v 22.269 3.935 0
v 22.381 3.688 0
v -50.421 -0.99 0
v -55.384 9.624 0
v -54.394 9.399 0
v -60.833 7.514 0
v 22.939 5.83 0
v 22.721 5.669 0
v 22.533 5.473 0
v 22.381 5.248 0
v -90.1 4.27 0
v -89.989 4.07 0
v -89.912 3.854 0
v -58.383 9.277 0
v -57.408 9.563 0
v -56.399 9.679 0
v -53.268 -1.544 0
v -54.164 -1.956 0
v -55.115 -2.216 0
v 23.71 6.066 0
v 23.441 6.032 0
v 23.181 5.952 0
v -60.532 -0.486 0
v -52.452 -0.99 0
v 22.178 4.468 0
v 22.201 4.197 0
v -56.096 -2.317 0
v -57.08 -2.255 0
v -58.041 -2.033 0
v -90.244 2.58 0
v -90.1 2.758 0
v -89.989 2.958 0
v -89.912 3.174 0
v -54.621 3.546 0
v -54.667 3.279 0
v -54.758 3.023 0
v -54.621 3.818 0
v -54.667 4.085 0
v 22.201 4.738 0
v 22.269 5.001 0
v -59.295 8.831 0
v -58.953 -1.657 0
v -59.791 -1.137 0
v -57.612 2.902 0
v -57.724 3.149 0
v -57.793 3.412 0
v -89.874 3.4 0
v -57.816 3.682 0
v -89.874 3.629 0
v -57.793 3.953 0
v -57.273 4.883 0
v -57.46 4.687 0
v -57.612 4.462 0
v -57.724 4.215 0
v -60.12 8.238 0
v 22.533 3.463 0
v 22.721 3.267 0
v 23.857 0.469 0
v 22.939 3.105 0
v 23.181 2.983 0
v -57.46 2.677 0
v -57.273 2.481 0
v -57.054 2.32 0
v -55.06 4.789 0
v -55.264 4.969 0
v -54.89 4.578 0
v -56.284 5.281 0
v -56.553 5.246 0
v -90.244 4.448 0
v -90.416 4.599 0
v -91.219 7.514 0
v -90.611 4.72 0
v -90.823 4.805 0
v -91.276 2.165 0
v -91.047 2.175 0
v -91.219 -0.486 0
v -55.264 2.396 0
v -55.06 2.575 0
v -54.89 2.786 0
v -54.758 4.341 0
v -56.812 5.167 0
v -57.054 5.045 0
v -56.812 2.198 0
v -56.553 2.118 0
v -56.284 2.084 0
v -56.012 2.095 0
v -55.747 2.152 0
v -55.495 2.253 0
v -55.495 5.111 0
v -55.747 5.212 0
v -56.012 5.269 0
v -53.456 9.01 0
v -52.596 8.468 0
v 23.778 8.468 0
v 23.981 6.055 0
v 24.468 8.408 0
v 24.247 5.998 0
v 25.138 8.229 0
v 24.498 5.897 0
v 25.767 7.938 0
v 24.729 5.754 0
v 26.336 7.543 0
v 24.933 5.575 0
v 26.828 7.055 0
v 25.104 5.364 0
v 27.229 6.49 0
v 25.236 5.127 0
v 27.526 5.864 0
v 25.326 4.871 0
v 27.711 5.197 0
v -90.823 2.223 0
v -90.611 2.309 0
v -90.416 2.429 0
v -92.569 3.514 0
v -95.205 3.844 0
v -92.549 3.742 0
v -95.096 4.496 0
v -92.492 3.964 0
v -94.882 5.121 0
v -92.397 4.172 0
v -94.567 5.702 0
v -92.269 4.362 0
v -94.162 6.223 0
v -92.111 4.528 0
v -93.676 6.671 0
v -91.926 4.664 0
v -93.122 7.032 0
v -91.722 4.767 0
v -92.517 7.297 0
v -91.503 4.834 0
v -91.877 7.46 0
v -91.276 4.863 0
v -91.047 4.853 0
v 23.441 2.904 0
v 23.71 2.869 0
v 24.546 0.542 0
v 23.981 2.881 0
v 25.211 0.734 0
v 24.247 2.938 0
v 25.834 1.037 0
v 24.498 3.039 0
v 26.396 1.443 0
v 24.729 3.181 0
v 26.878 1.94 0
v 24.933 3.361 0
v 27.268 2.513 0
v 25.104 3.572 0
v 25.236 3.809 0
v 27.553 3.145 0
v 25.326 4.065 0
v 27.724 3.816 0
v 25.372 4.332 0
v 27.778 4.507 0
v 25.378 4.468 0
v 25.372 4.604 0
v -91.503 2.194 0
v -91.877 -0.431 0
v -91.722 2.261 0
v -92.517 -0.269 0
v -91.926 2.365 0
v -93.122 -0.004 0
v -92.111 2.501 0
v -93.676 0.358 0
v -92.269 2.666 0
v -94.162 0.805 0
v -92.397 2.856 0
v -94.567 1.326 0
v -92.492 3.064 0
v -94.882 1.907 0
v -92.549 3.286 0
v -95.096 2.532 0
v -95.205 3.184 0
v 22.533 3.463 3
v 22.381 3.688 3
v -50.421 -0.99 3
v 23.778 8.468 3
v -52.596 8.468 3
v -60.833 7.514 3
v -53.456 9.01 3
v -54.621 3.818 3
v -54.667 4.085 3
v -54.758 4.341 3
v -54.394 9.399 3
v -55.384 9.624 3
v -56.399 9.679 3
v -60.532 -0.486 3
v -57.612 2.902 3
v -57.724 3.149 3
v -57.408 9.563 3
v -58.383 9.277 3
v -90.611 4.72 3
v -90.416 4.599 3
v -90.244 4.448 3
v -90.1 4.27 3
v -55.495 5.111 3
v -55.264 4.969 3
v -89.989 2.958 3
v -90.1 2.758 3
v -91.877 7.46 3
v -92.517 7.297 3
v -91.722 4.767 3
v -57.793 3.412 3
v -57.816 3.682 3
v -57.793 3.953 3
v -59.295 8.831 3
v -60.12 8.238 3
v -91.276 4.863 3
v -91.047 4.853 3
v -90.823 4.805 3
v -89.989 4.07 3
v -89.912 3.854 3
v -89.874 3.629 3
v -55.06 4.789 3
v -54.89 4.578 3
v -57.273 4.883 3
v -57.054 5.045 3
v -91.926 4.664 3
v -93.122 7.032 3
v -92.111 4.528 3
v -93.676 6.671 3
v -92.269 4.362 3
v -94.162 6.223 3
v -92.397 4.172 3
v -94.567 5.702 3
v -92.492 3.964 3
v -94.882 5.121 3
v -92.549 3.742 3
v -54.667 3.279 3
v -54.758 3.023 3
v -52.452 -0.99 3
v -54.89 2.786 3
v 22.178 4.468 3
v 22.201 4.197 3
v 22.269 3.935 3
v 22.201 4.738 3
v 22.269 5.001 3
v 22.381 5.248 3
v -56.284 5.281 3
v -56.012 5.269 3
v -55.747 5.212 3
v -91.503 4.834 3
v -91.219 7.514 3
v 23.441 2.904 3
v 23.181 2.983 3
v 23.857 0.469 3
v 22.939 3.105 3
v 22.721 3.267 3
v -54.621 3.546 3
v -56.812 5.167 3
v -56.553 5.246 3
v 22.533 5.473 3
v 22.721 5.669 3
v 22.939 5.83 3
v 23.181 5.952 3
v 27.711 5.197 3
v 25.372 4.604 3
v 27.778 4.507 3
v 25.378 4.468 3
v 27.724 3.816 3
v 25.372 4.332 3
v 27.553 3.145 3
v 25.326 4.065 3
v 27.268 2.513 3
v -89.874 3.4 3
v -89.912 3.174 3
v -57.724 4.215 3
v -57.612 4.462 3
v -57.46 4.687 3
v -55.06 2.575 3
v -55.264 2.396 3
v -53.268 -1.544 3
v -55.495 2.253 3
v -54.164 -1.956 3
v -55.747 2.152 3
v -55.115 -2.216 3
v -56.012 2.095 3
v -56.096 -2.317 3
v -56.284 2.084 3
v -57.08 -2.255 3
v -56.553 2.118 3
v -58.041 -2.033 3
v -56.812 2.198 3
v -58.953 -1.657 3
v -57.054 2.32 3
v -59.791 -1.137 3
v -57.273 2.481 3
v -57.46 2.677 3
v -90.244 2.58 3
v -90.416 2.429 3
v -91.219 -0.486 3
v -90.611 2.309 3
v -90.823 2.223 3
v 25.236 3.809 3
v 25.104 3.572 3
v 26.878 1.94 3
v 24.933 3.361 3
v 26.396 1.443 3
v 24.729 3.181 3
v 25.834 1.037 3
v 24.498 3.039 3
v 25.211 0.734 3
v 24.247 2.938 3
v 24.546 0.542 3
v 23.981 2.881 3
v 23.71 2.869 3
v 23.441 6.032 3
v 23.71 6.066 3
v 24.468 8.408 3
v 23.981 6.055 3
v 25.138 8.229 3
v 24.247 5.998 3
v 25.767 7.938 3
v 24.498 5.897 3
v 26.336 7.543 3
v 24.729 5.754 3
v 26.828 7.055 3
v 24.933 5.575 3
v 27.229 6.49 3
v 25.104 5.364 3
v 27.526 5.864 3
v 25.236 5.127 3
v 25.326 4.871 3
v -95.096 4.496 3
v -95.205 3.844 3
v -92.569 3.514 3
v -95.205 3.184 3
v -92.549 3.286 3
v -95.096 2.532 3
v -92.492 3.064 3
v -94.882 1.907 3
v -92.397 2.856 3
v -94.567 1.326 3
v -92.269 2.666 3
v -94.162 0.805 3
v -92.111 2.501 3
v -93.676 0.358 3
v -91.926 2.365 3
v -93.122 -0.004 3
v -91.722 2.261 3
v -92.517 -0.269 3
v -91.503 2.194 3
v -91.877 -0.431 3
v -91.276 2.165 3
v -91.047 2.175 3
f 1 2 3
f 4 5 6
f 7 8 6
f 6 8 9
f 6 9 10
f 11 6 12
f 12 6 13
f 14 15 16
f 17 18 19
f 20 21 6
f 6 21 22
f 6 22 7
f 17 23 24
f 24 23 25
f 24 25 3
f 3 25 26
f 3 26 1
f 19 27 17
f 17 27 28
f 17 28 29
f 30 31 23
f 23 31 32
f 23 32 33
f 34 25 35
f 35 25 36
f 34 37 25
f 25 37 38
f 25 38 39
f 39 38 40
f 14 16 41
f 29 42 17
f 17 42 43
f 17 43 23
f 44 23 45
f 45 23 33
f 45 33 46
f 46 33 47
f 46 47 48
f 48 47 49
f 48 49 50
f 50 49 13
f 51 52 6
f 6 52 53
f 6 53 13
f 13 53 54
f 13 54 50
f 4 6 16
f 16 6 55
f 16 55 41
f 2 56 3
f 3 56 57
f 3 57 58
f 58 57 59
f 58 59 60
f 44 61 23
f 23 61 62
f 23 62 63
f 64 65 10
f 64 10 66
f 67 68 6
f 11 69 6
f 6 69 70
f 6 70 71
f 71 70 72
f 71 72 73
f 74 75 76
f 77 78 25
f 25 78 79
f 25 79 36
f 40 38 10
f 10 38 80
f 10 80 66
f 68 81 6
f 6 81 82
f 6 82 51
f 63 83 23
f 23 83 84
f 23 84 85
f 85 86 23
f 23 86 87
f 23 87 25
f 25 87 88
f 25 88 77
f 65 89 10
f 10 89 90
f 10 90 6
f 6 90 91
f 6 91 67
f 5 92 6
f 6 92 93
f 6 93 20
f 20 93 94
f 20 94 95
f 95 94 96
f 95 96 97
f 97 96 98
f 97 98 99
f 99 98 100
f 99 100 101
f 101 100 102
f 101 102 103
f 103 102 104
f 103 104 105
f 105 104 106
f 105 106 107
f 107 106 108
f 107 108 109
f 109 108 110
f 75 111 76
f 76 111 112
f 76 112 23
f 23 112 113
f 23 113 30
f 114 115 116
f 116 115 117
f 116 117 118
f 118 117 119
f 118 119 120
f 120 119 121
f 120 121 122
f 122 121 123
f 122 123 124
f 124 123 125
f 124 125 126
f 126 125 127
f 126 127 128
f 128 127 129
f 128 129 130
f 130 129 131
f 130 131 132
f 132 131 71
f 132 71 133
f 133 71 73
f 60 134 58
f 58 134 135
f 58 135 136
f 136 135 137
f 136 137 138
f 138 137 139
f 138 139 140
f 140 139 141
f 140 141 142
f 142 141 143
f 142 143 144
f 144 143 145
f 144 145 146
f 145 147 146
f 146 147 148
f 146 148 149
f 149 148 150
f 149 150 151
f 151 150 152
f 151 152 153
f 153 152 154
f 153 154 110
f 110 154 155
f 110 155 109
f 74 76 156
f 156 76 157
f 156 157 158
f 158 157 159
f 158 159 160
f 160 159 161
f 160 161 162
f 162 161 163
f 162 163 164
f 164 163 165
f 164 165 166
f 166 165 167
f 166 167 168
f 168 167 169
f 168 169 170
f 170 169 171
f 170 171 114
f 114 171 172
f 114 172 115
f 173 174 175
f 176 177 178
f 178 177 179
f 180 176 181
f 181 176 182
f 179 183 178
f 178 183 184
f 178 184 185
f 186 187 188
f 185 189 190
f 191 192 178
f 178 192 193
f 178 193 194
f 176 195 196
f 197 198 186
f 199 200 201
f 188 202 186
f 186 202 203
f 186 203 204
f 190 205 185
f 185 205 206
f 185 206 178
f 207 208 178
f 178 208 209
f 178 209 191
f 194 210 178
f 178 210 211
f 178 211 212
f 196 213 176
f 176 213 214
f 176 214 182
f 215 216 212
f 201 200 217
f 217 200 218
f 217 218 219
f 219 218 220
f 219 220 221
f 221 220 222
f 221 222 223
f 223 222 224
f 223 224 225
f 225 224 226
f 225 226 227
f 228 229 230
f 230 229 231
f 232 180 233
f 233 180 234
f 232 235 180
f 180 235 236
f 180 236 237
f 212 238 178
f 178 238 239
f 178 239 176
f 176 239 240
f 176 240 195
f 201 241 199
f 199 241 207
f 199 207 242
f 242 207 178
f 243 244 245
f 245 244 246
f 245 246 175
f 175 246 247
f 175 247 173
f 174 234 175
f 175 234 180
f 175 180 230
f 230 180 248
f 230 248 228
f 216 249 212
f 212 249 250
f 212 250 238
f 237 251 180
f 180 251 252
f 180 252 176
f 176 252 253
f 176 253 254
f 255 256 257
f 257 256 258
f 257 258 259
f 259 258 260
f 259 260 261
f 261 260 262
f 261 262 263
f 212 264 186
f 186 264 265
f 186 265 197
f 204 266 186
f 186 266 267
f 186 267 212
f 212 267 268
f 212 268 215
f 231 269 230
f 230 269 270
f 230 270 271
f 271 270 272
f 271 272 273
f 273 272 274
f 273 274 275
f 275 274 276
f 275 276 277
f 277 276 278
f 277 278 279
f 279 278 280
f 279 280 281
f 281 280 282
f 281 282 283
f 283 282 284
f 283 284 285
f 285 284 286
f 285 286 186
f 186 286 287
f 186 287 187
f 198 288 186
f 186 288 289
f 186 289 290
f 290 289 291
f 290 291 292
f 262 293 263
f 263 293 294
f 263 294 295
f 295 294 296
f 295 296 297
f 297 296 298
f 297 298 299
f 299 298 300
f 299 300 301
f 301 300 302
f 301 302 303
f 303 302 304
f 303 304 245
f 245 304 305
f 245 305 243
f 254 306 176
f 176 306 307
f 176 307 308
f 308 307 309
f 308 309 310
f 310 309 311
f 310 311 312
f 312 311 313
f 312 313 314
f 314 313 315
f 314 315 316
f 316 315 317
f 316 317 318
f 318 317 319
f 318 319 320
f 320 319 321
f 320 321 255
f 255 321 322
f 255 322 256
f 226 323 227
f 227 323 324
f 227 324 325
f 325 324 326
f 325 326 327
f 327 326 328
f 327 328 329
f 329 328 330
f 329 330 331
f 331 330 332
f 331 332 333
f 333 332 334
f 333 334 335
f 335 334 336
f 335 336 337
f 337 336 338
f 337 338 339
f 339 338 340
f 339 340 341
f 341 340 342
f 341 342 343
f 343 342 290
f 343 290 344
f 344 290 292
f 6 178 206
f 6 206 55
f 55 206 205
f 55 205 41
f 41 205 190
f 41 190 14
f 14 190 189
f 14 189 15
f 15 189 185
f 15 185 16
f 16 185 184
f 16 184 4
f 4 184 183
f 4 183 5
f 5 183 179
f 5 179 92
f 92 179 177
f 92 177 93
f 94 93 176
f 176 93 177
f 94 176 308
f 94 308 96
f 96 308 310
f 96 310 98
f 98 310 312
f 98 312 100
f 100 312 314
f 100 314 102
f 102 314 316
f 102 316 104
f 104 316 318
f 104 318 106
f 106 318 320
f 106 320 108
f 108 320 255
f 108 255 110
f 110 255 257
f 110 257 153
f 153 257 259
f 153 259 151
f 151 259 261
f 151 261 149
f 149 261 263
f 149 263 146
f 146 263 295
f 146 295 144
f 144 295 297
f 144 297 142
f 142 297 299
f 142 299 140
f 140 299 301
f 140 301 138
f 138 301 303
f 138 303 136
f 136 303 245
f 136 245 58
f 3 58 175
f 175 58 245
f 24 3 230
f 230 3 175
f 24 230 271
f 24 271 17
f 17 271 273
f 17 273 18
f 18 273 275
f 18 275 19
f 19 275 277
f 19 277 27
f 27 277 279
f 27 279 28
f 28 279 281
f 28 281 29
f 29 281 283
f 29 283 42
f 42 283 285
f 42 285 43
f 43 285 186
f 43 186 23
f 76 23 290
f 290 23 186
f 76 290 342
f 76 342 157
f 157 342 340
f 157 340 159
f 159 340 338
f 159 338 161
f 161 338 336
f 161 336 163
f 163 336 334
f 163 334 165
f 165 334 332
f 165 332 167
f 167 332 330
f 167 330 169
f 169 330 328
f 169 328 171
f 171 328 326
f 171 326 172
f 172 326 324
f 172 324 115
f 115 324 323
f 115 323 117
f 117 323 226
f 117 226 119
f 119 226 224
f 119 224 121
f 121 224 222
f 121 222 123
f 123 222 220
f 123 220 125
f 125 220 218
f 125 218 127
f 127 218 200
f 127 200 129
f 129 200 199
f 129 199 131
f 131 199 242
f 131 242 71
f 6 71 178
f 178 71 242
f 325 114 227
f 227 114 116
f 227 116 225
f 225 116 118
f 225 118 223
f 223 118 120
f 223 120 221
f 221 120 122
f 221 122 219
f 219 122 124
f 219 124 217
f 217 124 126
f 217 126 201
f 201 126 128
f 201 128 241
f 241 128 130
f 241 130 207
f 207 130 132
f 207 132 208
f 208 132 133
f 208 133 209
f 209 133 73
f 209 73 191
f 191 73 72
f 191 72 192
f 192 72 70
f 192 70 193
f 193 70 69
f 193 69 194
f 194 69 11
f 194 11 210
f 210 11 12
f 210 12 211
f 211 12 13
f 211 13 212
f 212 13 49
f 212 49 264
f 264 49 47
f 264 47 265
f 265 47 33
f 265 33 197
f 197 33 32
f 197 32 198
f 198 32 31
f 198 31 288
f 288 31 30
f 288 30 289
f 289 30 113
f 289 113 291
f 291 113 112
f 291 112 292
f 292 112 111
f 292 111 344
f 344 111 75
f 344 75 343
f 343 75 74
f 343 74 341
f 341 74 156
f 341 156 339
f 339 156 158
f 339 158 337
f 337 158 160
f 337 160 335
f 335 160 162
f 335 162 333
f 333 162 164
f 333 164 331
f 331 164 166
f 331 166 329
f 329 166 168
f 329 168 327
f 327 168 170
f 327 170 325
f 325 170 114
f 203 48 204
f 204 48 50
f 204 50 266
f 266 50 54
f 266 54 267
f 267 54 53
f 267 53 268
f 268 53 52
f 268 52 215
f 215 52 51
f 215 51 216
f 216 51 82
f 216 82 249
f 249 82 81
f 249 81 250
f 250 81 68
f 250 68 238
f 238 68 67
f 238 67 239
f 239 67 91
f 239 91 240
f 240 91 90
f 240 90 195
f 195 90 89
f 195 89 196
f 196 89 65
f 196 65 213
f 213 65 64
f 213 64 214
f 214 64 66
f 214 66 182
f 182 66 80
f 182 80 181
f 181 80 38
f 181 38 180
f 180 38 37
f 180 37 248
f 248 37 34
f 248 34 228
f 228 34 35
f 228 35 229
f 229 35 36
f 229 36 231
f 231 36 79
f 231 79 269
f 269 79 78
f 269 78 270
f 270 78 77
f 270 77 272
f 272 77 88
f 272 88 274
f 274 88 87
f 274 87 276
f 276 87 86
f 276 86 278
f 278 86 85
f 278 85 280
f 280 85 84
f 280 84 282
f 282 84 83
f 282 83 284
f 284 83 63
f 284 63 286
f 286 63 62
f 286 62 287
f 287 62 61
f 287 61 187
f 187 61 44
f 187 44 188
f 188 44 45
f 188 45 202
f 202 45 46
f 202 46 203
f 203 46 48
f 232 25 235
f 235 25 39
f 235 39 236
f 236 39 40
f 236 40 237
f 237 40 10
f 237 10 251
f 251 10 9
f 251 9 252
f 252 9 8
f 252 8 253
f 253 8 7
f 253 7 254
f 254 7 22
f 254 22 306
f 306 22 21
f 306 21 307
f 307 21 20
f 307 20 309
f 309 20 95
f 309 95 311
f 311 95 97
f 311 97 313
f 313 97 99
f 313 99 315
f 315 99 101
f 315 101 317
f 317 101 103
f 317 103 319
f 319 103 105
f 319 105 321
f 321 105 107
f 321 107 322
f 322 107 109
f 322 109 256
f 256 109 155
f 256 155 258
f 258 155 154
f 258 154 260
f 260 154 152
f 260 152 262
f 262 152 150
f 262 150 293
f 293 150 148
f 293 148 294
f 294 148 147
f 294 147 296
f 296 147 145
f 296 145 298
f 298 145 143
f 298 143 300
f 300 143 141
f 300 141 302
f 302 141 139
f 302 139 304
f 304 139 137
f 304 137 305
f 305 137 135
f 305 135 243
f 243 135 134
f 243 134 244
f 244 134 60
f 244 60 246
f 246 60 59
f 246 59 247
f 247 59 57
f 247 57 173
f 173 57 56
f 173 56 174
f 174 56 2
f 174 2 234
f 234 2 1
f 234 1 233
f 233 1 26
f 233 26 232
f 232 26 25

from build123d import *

# Parameters (mm, degrees)
EXTRUDE_1_DEPTH     = 3
SKETCH_2_R          = 1.35
CUT_EXTRUDE_1_DEPTH = 2.444444444
SKETCH_3_R          = 1.6
SKETCH_3_R_2        = 1.35
CUT_EXTRUDE_3_DEPTH = 96.756657889


with BuildPart() as part:
    # 草图1 → 凸台-拉伸1 (new body)
    with BuildSketch(Plane.XY.offset(3)):
        with BuildLine():
            Line((-60.832535173, 7.514094179), (-91.218664305, 7.514094179))
            ThreePointArc((-91.218664305, 7.514094179), (-95.218664305, 3.514094179), (-91.218664305, -0.485905821))
            Line((-91.218664305, -0.485905821), (-60.531573746, -0.485905821))
            ThreePointArc((-60.531573746, -0.485905821), (-56.589491156, -2.306217172), (-52.451603626, -0.990377005))
            Line((-52.451603626, -0.990377005), (-50.420982545, -0.990377005))
            Line((-50.420982545, -0.990377005), (23.816560918, 0.467808699))
            Line((23.816560918, 0.467808699), (23.856567982, 0.468594524))
            ThreePointArc((23.856567982, 0.468594524), (27.777723532, 4.507000717), (23.778016459, 8.467622986))
            Line((23.778016459, 8.467622986), (-52.596358319, 8.467622986))
            ThreePointArc((-52.596358319, 8.467622986), (-56.905640848, 9.642312032), (-60.832535173, 7.514094179))
        make_face()
    extrude(amount=-EXTRUDE_1_DEPTH)

    # 草图2 → 切除-拉伸1 (cut)
    with BuildSketch(Plane.XY.offset(3)):
        with Locations(Location((23.77801746, 4.467622995, 0), (0, 0, 180))):
            Circle(SKETCH_2_R)
    extrude(amount=-CUT_EXTRUDE_1_DEPTH, mode=Mode.SUBTRACT)

    # 草图3 → 切除-拉伸3 (cut, through all)
    with BuildSketch(Plane(origin=(0, 0, 0), x_dir=(-1, 0, 0), z_dir=(0, 0, -1))):
        with Locations(Location((-23.778017455, 4.467823177, 0), (0, 0, 180))):
            Circle(SKETCH_3_R)
        with Locations((56.215610459, 3.6821226)):
            Circle(SKETCH_3_R)
        with Locations((91.218664305, 3.514094179)):
            Circle(SKETCH_3_R_2)
    extrude(amount=-CUT_EXTRUDE_3_DEPTH, mode=Mode.SUBTRACT)


solid = part.part
